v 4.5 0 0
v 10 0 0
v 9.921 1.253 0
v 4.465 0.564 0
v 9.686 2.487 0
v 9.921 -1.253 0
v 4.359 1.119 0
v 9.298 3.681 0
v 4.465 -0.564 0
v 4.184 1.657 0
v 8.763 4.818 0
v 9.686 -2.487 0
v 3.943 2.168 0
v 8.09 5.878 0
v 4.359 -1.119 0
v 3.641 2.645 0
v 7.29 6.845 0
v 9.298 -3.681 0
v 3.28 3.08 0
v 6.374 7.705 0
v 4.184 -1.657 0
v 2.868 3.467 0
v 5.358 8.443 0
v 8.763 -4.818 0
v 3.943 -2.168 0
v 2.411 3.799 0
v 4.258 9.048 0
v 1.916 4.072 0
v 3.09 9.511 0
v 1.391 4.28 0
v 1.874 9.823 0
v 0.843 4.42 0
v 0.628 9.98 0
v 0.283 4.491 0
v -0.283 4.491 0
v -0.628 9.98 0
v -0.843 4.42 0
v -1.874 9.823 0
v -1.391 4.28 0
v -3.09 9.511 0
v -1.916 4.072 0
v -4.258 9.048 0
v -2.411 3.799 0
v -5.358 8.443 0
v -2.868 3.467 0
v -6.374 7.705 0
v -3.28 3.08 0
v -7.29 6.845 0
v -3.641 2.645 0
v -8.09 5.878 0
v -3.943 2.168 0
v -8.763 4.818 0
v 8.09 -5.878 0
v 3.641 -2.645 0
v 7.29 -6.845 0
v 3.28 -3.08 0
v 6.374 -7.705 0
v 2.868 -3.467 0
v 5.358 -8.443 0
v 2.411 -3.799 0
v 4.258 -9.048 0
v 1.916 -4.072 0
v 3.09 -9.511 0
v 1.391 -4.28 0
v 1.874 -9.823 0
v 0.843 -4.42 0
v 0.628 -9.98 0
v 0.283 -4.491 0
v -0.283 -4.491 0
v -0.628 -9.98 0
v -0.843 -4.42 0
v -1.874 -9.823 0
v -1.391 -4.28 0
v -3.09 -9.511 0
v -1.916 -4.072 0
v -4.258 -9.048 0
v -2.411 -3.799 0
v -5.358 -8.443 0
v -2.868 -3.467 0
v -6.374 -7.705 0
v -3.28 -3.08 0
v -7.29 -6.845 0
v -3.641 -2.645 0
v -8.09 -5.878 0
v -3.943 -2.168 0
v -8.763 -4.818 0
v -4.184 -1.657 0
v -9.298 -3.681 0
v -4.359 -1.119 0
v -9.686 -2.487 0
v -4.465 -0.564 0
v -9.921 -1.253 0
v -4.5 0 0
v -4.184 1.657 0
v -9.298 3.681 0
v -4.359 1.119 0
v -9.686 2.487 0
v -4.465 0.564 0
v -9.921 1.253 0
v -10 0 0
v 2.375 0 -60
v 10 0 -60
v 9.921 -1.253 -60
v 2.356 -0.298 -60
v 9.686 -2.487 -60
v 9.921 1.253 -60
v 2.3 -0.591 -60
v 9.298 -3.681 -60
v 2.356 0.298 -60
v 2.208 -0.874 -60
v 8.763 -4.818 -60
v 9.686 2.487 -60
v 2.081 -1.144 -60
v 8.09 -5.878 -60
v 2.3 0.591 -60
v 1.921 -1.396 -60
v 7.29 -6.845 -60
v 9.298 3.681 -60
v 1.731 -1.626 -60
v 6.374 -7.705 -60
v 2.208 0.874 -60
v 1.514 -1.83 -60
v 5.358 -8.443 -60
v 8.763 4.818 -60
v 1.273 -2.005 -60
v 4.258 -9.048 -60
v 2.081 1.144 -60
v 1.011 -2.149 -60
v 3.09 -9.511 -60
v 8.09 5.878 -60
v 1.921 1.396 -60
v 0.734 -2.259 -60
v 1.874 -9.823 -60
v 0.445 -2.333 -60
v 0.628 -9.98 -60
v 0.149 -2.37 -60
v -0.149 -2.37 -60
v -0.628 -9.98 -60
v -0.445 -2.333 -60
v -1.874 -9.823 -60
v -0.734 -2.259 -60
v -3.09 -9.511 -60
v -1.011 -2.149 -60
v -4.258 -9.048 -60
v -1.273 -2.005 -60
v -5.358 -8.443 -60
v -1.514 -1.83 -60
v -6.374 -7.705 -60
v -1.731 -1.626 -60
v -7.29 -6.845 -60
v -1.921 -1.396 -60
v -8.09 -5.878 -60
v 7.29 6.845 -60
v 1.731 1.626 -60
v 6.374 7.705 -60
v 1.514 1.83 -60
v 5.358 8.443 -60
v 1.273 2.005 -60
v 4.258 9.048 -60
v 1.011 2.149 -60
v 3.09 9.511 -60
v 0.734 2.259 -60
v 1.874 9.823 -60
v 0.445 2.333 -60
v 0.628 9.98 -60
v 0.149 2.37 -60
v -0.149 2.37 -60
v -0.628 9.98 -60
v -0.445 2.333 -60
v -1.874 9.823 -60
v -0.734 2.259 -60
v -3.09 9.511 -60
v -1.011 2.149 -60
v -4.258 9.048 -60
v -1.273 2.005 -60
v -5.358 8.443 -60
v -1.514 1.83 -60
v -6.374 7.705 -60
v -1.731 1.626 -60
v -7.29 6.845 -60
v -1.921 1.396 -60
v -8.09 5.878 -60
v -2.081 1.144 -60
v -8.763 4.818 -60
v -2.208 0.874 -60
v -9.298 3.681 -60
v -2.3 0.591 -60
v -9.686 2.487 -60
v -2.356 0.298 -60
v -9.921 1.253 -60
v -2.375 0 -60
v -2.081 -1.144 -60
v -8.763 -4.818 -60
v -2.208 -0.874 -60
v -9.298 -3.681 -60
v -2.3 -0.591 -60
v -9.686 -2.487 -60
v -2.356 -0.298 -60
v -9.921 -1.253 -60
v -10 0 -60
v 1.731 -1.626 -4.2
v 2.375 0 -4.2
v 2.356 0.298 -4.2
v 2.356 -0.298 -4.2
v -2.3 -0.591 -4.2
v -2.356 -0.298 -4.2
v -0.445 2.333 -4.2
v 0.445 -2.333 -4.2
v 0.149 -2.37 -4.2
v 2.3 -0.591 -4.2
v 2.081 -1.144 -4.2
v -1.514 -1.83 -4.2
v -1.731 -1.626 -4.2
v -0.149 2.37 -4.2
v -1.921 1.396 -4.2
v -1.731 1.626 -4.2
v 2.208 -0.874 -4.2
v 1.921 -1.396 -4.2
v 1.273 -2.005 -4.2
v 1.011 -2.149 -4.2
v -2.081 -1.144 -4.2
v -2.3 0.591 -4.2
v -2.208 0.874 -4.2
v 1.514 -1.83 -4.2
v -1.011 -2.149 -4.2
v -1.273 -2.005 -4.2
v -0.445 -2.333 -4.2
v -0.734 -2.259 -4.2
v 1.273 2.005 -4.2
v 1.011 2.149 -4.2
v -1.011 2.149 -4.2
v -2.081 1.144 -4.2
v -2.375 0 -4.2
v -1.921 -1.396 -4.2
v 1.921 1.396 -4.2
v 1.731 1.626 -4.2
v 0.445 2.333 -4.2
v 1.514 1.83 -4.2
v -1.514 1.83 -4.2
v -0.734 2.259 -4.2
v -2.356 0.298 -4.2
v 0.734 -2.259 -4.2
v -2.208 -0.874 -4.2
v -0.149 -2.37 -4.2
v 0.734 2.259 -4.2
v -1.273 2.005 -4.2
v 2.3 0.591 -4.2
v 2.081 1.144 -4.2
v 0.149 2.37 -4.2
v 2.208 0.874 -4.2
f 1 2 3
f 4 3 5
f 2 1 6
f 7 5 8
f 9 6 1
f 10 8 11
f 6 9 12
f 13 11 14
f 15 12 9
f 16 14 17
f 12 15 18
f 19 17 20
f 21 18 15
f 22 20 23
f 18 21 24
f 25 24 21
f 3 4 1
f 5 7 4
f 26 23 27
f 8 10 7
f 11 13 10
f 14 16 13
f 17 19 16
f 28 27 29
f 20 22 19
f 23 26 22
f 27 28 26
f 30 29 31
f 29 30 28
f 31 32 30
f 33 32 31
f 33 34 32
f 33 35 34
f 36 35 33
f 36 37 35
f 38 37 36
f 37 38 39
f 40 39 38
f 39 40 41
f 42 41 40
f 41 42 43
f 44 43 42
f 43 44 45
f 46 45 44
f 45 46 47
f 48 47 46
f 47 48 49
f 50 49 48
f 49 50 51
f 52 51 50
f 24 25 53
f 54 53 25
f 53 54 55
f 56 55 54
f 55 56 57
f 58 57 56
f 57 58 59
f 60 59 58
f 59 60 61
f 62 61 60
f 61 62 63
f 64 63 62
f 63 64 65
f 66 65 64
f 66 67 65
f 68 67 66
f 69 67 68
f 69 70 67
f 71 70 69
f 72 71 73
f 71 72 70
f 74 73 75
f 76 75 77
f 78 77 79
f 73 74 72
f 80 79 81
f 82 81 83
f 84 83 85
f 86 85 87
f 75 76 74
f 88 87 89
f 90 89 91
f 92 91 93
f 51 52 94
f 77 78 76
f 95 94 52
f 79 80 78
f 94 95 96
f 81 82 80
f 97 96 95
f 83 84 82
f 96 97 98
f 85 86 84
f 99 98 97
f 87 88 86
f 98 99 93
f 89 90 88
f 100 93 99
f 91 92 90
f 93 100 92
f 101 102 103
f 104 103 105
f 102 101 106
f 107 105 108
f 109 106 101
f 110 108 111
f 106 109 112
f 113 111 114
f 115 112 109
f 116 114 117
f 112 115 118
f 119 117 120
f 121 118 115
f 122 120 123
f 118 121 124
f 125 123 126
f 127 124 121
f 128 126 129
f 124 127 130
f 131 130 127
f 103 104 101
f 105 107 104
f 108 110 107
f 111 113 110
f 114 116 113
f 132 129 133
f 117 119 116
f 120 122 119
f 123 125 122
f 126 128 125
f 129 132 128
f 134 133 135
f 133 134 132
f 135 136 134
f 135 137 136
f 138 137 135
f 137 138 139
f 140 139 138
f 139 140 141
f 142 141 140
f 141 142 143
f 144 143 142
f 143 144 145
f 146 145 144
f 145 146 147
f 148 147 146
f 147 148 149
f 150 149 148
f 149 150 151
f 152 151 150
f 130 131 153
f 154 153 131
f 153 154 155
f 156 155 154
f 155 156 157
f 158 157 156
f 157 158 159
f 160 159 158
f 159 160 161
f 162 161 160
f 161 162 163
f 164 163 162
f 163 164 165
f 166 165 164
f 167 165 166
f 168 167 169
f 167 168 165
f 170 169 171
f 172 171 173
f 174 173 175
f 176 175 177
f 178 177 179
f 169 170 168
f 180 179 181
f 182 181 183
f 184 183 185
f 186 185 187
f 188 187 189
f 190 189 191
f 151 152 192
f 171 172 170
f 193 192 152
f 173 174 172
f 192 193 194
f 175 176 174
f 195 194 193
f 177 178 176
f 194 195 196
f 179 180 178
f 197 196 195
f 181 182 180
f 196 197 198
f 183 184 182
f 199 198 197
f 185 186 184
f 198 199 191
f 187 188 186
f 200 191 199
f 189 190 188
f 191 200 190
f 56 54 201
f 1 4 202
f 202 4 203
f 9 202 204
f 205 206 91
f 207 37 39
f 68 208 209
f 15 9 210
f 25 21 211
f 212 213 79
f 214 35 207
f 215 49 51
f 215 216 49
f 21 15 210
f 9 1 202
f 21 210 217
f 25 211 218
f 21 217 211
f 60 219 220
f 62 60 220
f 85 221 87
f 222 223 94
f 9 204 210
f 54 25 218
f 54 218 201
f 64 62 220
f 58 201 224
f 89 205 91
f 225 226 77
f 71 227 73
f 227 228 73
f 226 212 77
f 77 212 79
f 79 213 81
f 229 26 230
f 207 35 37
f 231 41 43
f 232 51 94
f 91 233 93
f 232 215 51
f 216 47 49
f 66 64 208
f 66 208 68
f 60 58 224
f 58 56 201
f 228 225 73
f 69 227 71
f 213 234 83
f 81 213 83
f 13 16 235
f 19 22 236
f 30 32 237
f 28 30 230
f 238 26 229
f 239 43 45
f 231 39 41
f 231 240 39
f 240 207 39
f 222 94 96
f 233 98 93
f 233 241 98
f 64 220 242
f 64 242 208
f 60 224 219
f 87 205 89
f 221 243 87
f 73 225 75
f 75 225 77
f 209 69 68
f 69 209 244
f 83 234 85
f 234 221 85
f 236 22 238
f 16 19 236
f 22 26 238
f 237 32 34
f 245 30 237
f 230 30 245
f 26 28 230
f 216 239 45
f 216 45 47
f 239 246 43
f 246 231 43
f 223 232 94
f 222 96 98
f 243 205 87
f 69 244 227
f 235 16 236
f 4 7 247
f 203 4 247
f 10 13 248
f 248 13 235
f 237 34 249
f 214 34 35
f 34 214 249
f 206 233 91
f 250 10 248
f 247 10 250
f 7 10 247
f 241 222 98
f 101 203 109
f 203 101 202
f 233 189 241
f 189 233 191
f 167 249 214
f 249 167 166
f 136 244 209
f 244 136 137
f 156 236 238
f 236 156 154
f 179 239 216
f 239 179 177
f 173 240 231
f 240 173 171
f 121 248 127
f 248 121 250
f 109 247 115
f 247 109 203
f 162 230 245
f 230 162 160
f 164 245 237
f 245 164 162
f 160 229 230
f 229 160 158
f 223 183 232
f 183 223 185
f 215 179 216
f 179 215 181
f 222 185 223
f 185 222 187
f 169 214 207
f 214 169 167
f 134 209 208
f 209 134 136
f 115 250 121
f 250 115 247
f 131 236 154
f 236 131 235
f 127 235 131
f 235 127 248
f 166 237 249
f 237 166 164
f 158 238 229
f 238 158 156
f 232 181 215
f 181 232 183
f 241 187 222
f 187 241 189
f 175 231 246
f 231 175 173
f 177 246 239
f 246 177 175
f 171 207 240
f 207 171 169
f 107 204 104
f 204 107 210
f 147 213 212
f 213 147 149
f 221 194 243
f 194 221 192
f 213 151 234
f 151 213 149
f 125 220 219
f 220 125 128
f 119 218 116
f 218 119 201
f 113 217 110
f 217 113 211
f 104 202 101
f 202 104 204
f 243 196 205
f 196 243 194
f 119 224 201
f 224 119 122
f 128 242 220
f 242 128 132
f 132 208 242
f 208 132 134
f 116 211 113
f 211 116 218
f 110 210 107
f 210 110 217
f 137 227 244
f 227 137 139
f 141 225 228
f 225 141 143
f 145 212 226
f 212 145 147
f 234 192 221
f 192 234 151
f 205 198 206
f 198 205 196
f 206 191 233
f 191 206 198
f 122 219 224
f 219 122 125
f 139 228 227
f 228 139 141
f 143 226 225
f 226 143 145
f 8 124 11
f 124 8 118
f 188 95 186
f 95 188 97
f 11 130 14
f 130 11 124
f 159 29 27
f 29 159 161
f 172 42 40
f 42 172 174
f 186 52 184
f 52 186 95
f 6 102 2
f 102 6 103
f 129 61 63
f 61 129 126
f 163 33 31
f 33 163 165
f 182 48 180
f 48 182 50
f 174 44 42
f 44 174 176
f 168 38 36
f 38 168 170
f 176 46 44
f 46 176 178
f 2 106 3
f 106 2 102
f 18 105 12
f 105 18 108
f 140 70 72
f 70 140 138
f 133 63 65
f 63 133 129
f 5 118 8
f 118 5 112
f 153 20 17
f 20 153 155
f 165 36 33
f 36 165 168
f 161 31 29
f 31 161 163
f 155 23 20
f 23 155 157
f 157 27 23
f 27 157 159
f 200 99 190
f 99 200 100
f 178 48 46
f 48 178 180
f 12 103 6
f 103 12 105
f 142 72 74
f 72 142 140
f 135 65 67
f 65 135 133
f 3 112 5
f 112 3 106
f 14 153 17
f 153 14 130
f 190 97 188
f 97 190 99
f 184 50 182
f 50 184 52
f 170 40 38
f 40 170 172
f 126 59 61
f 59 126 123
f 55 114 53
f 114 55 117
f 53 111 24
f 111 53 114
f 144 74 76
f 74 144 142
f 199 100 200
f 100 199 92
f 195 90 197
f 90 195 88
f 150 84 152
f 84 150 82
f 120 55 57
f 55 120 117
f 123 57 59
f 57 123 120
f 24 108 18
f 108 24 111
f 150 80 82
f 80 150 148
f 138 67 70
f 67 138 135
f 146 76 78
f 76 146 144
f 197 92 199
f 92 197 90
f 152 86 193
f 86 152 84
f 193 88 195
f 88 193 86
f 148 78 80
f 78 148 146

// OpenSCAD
$fn = 50;


difference() {
	union() {
		translate(v = [0, 0, -60.0000000000]) {
			cylinder(h = 60, r = 10.0000000000);
		}
		cylinder(h = 0, r = 13.0000000000);
	}
	union() {
		translate(v = [0, 0, 0]) {
			rotate(a = [0, 0, 0]) {
				difference() {
					union() {
						#translate(v = [0, 0, -60.0000000000]) {
							cylinder(h = 60, r = 2.2500000000);
						}
						#translate(v = [0, 0, -4.2000000000]) {
							cylinder(h = 4.2000000000, r1 = 2.3750000000, r2 = 4.5000000000);
						}
						#translate(v = [0, 0, -60.0000000000]) {
							cylinder(h = 60, r = 2.3750000000);
						}
						#translate(v = [0, 0, -60.0000000000]) {
							cylinder(h = 60, r = 2.2500000000);
						}
					}
					union();
				}
			}
		}
	}
}
